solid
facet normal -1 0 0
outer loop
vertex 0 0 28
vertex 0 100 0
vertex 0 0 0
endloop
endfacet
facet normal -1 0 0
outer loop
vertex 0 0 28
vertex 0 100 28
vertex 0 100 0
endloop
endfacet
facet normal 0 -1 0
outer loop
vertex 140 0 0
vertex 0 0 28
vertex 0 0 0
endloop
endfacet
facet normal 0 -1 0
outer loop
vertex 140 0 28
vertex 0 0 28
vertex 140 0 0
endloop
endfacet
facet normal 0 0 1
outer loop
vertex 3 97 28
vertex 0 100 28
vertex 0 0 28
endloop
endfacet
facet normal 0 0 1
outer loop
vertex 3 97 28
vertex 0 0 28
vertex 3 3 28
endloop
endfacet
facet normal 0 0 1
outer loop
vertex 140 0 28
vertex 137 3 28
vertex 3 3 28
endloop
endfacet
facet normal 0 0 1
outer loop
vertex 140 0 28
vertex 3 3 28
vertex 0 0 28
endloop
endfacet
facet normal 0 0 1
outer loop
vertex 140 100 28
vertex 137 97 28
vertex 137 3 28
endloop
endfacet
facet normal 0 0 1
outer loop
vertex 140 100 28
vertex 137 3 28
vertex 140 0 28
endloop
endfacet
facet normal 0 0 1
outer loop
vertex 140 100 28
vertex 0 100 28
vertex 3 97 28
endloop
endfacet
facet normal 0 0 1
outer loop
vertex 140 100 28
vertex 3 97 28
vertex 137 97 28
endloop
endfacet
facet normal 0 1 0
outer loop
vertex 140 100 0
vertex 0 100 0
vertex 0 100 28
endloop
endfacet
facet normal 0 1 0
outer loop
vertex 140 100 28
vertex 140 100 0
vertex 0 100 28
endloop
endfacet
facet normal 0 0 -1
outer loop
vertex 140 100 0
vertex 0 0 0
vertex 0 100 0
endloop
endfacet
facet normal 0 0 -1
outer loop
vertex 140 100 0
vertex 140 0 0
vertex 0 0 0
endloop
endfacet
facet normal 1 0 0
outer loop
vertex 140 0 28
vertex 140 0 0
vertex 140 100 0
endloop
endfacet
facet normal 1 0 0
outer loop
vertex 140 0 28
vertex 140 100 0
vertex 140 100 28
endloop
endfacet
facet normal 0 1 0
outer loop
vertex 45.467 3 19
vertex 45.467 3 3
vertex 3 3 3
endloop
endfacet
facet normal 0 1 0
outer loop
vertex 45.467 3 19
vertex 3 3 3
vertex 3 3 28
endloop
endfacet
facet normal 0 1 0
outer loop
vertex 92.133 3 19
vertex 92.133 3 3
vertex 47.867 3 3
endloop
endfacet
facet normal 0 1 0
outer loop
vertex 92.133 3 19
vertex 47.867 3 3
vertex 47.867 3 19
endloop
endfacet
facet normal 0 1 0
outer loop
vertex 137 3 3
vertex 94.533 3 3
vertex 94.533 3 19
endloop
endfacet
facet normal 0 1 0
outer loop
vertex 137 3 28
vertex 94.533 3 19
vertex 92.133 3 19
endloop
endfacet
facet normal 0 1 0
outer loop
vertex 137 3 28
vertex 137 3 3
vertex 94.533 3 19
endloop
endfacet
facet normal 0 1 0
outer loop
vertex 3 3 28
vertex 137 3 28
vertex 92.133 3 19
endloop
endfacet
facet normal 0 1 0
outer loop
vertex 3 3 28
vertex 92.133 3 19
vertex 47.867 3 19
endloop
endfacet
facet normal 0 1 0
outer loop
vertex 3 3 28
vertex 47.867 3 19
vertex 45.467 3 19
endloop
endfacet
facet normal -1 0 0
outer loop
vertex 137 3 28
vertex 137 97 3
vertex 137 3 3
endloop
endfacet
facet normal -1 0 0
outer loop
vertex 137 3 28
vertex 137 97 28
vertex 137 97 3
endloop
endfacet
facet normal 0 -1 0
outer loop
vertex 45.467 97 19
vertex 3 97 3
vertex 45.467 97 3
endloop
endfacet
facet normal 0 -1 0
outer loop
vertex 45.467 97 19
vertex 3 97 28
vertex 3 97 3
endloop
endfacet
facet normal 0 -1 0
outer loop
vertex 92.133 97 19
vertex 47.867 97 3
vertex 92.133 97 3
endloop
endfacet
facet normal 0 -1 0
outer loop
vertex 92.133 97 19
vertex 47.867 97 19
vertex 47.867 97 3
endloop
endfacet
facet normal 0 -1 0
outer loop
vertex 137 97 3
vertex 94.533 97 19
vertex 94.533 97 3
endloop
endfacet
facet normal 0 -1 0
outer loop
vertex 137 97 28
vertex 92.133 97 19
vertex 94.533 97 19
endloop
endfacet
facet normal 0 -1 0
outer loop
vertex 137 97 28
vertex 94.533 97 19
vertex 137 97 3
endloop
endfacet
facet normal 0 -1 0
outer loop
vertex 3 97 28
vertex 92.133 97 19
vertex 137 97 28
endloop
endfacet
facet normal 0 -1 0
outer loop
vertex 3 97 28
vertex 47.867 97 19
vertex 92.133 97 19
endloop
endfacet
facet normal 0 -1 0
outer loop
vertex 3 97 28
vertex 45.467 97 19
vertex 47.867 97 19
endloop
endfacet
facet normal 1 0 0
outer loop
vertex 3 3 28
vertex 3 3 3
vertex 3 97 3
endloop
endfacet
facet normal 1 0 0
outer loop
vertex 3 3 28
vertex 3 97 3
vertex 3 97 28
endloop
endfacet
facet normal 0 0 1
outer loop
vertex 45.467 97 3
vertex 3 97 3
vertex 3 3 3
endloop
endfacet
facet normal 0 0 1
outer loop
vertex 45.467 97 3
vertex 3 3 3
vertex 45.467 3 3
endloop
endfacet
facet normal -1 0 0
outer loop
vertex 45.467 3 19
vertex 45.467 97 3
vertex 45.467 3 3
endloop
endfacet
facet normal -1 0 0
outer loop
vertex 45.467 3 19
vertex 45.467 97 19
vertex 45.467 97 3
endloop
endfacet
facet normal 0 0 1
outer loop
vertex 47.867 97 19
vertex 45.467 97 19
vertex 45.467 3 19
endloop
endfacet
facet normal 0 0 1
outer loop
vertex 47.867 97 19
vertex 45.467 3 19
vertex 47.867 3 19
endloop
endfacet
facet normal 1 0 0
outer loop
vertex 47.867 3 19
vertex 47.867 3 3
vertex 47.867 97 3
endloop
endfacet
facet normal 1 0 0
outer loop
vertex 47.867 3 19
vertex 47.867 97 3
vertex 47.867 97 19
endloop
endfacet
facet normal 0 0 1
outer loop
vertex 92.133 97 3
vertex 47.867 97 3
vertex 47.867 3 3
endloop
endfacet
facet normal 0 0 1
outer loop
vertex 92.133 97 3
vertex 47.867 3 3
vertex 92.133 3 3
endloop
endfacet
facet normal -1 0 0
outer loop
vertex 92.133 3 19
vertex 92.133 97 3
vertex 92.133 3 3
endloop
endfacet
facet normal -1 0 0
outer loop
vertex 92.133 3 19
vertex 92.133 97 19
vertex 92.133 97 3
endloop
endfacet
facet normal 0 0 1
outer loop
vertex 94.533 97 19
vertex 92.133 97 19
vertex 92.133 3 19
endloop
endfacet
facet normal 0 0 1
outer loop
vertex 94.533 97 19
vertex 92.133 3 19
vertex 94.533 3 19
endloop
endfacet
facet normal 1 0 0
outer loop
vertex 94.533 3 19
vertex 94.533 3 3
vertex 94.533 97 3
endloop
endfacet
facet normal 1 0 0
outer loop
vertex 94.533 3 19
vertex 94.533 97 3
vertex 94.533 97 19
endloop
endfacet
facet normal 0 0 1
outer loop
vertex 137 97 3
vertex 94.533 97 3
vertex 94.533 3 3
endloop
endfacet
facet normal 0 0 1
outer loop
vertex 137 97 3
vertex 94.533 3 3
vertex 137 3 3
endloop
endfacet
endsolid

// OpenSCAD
// AymanBuilds Modular Filming Station — desktop electronics parts tray
// Open-top tray for jumper wires, screws, modules, and small tools.
$fn = 48;

outer_x = 140;
outer_y = 100;
outer_z = 28;
wall = 3;
bottom = 3;
divider_t = 2.4;
divider_h = 16;

 difference() {
  cube([outer_x,outer_y,outer_z]);
  translate([wall,wall,bottom])
    cube([outer_x-2*wall, outer_y-2*wall, outer_z-bottom+0.2]);
 }
// Two dividers, creating three loose-parts compartments
translate([outer_x/3-divider_t/2, wall, bottom])
  cube([divider_t, outer_y-2*wall, divider_h]);
translate([2*outer_x/3-divider_t/2, wall, bottom])
  cube([divider_t, outer_y-2*wall, divider_h]);
